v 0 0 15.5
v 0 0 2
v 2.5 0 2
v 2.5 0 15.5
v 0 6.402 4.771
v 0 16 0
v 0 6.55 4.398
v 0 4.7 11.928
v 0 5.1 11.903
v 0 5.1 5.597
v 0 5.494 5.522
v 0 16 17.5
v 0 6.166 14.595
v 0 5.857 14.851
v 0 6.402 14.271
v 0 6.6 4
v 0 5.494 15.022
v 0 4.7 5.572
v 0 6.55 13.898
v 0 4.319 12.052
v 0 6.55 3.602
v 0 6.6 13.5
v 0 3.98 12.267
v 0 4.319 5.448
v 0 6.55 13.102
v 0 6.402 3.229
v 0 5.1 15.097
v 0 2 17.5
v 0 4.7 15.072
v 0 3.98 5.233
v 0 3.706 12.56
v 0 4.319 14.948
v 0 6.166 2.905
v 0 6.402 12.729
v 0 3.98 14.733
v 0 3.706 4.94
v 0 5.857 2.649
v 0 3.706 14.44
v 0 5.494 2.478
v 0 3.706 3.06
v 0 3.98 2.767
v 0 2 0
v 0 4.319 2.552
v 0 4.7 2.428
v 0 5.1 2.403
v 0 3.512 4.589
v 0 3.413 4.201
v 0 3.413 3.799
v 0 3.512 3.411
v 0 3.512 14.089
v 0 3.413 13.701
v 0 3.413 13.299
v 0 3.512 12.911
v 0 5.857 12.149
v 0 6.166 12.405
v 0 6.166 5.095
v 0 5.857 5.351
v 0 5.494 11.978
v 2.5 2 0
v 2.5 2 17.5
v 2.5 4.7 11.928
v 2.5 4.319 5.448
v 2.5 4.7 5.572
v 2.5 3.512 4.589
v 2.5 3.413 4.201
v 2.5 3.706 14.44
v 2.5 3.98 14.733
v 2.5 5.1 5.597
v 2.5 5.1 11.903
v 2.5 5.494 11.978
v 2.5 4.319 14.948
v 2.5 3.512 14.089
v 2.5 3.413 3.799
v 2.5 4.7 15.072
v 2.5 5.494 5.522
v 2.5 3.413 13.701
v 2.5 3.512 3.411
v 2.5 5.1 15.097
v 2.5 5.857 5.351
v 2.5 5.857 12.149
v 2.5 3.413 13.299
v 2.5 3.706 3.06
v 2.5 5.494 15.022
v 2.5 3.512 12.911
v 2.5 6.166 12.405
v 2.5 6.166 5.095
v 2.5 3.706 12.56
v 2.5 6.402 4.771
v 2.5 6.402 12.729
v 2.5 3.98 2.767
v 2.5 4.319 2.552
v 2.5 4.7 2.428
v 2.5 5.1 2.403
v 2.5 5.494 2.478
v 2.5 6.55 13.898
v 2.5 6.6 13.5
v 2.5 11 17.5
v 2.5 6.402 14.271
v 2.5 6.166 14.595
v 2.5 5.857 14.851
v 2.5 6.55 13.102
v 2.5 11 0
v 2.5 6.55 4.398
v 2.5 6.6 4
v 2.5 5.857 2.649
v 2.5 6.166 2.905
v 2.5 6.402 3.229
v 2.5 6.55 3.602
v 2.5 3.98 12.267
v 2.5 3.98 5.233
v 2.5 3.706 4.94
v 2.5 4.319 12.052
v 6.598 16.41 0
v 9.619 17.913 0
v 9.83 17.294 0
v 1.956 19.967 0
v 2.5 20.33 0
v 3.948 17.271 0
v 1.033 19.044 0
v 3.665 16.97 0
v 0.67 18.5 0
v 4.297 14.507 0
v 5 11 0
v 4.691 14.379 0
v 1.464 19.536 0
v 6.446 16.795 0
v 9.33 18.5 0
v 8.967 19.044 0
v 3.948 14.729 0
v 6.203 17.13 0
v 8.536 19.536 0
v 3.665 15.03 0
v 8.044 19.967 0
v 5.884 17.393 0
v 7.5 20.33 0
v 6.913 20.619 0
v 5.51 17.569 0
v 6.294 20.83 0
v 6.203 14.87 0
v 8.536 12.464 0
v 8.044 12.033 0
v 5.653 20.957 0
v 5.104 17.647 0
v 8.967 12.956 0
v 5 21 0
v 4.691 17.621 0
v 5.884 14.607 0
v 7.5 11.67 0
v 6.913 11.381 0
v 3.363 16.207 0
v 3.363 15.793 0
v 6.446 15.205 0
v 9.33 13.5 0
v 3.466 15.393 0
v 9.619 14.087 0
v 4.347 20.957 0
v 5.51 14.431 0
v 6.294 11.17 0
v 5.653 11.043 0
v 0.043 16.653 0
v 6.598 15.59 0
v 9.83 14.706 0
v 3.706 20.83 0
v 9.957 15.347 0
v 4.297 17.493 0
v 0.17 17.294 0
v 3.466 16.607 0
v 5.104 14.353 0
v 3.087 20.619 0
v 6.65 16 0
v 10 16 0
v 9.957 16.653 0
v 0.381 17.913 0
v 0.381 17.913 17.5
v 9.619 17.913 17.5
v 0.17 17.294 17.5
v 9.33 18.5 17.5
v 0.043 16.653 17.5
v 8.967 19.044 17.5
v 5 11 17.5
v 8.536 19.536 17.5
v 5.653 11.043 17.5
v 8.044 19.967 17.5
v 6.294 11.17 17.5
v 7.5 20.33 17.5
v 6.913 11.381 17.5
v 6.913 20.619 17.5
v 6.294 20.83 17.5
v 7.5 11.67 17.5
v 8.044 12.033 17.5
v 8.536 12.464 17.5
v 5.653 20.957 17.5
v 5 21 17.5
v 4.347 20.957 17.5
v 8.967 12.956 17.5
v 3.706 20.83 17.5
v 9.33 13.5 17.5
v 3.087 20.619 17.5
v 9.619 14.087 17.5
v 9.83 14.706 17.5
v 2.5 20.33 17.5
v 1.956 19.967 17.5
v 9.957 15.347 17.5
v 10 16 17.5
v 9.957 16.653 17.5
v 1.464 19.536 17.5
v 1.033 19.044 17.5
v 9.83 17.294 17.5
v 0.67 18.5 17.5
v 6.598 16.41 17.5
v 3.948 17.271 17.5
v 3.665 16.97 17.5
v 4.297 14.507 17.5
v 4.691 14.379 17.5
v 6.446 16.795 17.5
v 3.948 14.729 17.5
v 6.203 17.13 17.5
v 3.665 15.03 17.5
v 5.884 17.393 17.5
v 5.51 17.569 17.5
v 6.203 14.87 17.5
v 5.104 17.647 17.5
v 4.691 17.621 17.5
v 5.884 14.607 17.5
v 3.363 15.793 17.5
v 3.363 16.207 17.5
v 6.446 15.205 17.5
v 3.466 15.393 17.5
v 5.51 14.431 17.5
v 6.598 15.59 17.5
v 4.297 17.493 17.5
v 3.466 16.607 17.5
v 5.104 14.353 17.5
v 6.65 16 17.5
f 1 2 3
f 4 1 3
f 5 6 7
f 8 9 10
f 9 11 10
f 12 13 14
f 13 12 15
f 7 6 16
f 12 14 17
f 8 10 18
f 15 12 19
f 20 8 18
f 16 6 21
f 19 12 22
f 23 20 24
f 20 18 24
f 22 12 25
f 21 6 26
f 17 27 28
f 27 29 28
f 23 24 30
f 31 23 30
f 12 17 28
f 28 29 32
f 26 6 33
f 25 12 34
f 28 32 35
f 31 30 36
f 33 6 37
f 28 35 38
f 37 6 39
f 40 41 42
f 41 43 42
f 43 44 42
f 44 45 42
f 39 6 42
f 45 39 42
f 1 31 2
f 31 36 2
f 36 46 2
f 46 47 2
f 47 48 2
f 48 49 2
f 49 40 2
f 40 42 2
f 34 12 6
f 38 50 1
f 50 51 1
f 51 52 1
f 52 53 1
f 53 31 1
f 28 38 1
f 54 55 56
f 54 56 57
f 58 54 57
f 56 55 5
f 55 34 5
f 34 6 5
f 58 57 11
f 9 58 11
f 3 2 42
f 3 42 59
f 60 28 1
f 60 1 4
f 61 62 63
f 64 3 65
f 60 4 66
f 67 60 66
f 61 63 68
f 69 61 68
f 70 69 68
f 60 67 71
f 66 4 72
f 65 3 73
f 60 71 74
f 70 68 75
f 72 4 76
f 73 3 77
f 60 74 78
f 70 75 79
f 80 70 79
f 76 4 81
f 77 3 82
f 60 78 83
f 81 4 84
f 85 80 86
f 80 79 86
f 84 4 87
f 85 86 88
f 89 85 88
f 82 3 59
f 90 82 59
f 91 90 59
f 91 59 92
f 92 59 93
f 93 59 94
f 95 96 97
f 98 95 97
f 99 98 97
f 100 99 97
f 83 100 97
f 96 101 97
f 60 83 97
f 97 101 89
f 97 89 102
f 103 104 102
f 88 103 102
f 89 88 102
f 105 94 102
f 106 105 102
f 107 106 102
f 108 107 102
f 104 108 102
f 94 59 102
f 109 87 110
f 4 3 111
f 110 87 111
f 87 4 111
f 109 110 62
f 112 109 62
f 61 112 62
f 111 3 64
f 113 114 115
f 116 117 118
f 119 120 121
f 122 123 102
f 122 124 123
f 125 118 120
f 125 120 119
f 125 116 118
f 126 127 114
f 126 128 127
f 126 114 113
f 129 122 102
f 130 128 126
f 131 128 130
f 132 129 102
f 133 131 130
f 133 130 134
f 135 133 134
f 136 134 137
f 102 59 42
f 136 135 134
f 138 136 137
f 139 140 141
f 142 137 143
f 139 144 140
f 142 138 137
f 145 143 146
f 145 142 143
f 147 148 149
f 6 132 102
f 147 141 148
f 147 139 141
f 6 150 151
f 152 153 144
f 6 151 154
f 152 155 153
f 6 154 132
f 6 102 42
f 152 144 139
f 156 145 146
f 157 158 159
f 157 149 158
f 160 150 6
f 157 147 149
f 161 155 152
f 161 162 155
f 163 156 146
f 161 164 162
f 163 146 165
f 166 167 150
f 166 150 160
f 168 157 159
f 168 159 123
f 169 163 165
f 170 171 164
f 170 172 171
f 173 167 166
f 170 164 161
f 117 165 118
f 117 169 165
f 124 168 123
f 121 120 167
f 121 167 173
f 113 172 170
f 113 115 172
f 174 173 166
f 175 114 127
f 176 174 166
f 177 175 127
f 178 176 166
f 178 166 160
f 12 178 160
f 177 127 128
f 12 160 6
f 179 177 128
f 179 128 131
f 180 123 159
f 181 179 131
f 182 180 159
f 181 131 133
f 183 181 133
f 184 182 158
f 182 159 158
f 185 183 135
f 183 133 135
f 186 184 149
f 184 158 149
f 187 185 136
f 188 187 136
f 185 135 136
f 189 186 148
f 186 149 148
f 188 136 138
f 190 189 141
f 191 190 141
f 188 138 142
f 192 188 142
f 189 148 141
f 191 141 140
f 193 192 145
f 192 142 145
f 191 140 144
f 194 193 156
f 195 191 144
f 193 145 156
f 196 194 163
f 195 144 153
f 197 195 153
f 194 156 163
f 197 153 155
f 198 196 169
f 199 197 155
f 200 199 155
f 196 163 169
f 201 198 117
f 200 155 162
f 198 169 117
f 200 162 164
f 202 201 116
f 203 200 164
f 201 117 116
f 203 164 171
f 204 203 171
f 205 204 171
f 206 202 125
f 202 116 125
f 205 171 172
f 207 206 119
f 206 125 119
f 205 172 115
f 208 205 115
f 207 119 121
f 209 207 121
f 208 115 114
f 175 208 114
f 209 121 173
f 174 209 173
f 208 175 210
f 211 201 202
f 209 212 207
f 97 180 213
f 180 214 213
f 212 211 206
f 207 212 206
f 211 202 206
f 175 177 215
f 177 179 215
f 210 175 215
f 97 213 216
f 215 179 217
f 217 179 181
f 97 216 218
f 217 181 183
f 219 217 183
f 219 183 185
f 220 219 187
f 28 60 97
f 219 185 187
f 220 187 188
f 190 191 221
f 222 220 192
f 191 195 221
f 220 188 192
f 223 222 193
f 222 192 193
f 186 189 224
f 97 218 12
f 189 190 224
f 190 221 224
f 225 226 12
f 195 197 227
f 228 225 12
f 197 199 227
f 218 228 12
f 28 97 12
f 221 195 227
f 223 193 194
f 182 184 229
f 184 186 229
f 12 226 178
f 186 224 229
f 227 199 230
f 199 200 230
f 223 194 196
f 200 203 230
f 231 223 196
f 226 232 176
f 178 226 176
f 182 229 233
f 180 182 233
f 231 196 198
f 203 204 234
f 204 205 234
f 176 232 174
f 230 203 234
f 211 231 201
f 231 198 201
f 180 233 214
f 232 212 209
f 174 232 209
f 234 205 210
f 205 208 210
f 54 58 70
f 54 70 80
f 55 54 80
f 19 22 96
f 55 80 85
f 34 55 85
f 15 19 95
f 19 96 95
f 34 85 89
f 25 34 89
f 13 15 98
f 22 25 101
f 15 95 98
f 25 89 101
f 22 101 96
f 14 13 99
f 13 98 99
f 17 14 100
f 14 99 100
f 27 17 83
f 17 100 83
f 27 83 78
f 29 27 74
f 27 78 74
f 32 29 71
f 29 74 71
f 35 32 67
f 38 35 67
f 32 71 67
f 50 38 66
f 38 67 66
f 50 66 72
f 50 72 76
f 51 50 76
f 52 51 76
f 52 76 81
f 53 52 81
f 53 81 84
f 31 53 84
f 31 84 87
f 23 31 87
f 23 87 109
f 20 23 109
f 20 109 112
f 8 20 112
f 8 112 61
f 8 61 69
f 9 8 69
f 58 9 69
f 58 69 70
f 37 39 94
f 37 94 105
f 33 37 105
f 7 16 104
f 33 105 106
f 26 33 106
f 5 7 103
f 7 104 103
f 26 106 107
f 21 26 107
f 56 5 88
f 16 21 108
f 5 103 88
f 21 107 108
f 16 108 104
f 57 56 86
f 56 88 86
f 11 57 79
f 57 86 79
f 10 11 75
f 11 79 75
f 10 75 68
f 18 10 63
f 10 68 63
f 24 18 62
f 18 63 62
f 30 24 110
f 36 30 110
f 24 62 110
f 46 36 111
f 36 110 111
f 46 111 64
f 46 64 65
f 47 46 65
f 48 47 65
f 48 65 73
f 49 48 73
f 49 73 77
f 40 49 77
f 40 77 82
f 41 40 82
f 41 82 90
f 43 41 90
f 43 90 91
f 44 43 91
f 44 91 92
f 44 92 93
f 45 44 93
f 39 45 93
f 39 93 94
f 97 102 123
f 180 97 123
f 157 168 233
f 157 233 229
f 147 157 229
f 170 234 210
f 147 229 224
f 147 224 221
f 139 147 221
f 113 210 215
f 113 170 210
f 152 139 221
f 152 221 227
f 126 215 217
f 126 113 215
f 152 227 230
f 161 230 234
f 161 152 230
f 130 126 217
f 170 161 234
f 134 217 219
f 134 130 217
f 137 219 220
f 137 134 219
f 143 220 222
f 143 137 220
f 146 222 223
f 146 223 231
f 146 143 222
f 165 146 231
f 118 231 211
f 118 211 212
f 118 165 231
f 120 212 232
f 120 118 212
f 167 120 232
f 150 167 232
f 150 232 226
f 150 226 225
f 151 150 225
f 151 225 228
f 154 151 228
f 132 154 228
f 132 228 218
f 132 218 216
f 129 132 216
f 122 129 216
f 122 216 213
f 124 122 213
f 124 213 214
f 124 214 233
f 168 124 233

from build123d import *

# Parameters (mm, degrees)
SKETCH_R     = 1.65
PAD_DEPTH    = 17.5
SKETCH001_R  = 1.6
POCKET_DEPTH = 5
CHAMFER_SIZE = 2


with BuildPart() as part:
    # Sketch → Pad (new body)
    with BuildSketch(Plane.XY):
        with BuildLine():
            Line((0, 0), (2.5, 0))
            Line((2.5, 0), (2.5, 11))
            Line((2.5, 11), (4.999996, 11))
            ThreePointArc((4.999996, 11), (8.535546, 19.535522), (0, 16.000029))
            Line((0, 16.000029), (0, 0))
        make_face()
        with Locations((5, 16)):
            Circle(SKETCH_R, mode=Mode.SUBTRACT)
    extrude(amount=PAD_DEPTH)

    # Sketch001 → Pocket (cut)
    with BuildSketch(Plane.YZ.offset(2.5)):
        with Locations((5, 13.5)):
            Circle(SKETCH001_R)
        with Locations((5, 4)):
            Circle(SKETCH001_R)
    extrude(amount=-POCKET_DEPTH, mode=Mode.SUBTRACT)

    # Chamfer
    chamfer_edges = [part.edges().sort_by_distance(p)[0] for p in [
        (1.25, 0, 17.5),
        (1.25, 0, 0),
    ]]
    chamfer(chamfer_edges, length=CHAMFER_SIZE)


solid = part.part
